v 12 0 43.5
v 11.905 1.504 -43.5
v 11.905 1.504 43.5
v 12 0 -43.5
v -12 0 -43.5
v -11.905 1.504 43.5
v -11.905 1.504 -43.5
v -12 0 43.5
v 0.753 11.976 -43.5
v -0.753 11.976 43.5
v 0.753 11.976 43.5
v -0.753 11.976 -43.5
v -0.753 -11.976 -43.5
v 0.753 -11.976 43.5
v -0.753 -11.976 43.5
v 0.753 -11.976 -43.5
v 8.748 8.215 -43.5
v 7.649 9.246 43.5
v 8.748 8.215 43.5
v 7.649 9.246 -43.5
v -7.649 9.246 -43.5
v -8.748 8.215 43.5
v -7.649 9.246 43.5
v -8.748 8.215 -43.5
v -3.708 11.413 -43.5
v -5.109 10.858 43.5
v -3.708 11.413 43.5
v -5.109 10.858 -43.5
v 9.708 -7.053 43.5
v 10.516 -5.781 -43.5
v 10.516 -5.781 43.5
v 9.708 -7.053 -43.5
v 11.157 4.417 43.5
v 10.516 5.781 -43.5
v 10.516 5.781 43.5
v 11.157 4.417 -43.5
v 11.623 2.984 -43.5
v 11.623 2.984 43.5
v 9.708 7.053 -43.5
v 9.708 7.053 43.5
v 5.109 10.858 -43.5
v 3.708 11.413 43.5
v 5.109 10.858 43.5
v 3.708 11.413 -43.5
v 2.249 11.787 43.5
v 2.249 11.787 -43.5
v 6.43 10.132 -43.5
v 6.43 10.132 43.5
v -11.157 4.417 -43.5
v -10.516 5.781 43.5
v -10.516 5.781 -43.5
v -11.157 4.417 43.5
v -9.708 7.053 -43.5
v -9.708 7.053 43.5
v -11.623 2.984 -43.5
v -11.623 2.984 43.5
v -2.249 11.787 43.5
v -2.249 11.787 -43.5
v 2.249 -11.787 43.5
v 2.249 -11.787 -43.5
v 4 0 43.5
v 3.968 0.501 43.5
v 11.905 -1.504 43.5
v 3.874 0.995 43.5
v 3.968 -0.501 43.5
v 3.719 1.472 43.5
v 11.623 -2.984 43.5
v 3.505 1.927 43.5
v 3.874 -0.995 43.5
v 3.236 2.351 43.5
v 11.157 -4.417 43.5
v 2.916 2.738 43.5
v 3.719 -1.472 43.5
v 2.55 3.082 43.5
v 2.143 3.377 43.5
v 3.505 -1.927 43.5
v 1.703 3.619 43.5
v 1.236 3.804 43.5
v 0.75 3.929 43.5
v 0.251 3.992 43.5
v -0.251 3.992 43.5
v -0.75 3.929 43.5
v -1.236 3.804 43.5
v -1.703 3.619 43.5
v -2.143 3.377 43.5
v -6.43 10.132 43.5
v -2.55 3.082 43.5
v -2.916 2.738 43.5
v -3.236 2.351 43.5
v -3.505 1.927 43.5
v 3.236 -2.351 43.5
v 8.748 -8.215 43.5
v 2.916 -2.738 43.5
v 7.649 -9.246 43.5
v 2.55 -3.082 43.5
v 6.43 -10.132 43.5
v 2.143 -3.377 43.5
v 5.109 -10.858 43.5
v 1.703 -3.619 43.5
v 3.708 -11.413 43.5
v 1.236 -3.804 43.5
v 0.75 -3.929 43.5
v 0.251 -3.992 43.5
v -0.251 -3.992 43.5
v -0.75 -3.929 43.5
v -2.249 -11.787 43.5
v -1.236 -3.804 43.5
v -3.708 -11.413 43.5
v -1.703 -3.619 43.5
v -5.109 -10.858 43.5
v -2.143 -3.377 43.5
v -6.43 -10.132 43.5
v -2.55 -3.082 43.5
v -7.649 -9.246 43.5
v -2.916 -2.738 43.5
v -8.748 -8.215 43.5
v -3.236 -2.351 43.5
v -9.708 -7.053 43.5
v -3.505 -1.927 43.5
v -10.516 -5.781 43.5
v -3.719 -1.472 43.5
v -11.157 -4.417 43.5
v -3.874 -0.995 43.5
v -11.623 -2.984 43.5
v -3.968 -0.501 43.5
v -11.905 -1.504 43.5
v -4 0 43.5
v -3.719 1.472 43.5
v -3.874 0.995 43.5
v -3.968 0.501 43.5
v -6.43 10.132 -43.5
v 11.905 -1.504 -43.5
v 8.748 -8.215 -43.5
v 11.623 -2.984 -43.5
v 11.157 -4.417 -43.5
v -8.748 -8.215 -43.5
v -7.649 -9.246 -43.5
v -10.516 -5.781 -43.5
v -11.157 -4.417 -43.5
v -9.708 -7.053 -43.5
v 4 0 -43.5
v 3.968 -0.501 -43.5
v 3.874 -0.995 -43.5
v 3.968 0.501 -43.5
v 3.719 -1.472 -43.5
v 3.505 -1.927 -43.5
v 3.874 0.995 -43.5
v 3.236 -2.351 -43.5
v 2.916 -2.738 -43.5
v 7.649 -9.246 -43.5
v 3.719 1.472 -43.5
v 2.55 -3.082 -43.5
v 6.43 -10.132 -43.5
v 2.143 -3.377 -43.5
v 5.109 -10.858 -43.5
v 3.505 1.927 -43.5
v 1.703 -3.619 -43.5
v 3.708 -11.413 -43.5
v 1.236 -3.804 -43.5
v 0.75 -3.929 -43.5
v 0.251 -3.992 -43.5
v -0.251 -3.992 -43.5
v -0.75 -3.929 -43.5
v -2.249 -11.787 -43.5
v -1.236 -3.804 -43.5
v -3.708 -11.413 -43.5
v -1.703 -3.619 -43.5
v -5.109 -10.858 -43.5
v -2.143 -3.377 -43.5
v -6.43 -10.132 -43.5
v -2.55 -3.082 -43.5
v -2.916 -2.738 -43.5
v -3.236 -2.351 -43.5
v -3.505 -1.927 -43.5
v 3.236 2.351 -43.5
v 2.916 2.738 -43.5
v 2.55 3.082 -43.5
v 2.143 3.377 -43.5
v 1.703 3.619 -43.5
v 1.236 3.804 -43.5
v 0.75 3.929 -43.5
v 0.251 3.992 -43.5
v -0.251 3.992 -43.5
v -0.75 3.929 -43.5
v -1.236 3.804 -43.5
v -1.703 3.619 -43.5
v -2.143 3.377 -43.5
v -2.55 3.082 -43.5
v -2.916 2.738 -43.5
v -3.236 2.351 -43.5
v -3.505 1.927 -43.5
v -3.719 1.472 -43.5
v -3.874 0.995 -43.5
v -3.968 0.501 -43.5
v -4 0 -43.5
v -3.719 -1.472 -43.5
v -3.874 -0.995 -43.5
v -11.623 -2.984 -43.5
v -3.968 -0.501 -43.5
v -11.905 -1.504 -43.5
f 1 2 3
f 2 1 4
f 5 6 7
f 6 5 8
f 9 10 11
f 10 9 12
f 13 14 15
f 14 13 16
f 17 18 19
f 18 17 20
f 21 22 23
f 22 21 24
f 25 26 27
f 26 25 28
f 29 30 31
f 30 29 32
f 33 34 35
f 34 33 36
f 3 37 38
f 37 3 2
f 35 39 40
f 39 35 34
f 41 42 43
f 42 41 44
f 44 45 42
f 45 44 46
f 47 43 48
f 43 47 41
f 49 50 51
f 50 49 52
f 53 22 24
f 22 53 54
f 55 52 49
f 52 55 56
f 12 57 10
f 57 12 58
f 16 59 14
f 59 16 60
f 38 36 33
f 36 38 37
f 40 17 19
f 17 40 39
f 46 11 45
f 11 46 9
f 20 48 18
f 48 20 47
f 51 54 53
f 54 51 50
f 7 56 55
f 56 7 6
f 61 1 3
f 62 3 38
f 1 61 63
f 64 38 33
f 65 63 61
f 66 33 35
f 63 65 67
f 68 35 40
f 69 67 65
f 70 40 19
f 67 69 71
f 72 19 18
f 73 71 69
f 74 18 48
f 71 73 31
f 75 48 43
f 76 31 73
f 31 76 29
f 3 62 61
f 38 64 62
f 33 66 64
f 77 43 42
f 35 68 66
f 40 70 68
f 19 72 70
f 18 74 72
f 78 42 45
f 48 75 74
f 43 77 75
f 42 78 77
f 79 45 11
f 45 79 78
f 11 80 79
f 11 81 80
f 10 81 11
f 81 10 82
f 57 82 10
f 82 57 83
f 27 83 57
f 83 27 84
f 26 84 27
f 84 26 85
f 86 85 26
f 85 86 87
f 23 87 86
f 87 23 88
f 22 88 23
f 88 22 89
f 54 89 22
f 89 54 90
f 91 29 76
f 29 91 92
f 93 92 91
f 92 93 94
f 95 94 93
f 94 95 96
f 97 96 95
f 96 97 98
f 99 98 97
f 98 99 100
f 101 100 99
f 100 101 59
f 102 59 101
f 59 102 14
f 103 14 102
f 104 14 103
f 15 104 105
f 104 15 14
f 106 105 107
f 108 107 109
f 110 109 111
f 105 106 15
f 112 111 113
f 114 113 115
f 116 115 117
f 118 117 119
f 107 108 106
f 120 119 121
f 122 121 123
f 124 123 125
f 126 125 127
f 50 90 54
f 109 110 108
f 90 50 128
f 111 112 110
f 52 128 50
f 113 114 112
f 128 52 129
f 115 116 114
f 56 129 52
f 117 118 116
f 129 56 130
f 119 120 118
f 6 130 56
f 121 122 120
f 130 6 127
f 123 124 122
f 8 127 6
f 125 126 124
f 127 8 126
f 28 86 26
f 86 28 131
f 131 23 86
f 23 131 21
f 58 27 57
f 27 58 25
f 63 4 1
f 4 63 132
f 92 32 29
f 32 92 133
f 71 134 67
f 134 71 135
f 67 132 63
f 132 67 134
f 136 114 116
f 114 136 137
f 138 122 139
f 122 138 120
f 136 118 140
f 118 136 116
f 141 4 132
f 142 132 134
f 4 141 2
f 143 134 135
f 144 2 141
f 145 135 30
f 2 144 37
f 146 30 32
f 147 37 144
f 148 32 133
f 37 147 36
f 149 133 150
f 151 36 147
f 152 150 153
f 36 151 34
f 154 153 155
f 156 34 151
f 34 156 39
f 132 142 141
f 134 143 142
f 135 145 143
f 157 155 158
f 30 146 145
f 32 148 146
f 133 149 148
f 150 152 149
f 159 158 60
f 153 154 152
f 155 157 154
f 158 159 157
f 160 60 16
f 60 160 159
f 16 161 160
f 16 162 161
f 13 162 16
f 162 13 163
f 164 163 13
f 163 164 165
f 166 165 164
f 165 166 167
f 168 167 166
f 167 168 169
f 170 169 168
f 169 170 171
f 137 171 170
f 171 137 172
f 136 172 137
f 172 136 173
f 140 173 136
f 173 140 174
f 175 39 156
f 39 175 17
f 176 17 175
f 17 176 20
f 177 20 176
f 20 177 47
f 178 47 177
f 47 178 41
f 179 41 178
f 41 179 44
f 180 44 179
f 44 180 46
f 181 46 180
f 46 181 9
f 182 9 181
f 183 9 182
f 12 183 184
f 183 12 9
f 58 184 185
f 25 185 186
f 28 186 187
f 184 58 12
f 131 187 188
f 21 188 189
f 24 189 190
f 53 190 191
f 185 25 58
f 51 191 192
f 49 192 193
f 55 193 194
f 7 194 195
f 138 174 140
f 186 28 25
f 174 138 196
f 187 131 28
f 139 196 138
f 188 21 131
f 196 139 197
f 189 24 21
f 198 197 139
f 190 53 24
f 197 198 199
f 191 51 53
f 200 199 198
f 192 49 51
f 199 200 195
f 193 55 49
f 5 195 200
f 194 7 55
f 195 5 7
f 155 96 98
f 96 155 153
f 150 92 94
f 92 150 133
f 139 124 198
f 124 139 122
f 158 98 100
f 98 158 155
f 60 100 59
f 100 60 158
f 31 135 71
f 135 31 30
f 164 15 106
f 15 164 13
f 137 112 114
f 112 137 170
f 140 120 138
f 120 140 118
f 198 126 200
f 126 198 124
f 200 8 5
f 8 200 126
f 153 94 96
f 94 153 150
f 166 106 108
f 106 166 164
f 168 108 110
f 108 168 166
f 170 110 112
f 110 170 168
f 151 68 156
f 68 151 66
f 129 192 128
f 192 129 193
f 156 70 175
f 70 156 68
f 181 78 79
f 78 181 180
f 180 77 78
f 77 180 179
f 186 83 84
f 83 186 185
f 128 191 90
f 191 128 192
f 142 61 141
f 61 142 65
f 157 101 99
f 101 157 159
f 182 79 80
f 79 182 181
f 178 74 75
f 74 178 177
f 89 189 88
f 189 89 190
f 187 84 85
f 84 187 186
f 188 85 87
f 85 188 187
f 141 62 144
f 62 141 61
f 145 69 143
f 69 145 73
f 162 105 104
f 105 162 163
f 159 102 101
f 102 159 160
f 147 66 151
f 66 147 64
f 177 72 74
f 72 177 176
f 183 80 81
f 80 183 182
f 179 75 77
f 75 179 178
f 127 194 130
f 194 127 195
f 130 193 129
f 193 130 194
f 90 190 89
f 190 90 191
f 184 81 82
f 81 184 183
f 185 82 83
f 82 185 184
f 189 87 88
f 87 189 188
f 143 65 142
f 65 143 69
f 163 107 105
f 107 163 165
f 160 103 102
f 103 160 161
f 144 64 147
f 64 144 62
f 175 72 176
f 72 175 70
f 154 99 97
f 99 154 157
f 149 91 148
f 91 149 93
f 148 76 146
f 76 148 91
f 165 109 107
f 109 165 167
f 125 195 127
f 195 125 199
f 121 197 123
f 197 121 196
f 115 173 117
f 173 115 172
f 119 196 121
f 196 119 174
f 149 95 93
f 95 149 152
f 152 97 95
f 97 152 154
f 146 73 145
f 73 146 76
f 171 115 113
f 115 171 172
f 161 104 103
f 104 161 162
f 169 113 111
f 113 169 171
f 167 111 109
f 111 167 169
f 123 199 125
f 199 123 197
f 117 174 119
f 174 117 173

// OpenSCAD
$fn = 50;


difference() {
	union() {
		translate(v = [0, 0, -43.5000000000]) {
			cylinder(h = 87, r = 12.0000000000);
		}
	}
	union() {
		translate(v = [0, 0, -100.0000000000]) {
			cylinder(h = 200, r = 4);
		}
	}
}
